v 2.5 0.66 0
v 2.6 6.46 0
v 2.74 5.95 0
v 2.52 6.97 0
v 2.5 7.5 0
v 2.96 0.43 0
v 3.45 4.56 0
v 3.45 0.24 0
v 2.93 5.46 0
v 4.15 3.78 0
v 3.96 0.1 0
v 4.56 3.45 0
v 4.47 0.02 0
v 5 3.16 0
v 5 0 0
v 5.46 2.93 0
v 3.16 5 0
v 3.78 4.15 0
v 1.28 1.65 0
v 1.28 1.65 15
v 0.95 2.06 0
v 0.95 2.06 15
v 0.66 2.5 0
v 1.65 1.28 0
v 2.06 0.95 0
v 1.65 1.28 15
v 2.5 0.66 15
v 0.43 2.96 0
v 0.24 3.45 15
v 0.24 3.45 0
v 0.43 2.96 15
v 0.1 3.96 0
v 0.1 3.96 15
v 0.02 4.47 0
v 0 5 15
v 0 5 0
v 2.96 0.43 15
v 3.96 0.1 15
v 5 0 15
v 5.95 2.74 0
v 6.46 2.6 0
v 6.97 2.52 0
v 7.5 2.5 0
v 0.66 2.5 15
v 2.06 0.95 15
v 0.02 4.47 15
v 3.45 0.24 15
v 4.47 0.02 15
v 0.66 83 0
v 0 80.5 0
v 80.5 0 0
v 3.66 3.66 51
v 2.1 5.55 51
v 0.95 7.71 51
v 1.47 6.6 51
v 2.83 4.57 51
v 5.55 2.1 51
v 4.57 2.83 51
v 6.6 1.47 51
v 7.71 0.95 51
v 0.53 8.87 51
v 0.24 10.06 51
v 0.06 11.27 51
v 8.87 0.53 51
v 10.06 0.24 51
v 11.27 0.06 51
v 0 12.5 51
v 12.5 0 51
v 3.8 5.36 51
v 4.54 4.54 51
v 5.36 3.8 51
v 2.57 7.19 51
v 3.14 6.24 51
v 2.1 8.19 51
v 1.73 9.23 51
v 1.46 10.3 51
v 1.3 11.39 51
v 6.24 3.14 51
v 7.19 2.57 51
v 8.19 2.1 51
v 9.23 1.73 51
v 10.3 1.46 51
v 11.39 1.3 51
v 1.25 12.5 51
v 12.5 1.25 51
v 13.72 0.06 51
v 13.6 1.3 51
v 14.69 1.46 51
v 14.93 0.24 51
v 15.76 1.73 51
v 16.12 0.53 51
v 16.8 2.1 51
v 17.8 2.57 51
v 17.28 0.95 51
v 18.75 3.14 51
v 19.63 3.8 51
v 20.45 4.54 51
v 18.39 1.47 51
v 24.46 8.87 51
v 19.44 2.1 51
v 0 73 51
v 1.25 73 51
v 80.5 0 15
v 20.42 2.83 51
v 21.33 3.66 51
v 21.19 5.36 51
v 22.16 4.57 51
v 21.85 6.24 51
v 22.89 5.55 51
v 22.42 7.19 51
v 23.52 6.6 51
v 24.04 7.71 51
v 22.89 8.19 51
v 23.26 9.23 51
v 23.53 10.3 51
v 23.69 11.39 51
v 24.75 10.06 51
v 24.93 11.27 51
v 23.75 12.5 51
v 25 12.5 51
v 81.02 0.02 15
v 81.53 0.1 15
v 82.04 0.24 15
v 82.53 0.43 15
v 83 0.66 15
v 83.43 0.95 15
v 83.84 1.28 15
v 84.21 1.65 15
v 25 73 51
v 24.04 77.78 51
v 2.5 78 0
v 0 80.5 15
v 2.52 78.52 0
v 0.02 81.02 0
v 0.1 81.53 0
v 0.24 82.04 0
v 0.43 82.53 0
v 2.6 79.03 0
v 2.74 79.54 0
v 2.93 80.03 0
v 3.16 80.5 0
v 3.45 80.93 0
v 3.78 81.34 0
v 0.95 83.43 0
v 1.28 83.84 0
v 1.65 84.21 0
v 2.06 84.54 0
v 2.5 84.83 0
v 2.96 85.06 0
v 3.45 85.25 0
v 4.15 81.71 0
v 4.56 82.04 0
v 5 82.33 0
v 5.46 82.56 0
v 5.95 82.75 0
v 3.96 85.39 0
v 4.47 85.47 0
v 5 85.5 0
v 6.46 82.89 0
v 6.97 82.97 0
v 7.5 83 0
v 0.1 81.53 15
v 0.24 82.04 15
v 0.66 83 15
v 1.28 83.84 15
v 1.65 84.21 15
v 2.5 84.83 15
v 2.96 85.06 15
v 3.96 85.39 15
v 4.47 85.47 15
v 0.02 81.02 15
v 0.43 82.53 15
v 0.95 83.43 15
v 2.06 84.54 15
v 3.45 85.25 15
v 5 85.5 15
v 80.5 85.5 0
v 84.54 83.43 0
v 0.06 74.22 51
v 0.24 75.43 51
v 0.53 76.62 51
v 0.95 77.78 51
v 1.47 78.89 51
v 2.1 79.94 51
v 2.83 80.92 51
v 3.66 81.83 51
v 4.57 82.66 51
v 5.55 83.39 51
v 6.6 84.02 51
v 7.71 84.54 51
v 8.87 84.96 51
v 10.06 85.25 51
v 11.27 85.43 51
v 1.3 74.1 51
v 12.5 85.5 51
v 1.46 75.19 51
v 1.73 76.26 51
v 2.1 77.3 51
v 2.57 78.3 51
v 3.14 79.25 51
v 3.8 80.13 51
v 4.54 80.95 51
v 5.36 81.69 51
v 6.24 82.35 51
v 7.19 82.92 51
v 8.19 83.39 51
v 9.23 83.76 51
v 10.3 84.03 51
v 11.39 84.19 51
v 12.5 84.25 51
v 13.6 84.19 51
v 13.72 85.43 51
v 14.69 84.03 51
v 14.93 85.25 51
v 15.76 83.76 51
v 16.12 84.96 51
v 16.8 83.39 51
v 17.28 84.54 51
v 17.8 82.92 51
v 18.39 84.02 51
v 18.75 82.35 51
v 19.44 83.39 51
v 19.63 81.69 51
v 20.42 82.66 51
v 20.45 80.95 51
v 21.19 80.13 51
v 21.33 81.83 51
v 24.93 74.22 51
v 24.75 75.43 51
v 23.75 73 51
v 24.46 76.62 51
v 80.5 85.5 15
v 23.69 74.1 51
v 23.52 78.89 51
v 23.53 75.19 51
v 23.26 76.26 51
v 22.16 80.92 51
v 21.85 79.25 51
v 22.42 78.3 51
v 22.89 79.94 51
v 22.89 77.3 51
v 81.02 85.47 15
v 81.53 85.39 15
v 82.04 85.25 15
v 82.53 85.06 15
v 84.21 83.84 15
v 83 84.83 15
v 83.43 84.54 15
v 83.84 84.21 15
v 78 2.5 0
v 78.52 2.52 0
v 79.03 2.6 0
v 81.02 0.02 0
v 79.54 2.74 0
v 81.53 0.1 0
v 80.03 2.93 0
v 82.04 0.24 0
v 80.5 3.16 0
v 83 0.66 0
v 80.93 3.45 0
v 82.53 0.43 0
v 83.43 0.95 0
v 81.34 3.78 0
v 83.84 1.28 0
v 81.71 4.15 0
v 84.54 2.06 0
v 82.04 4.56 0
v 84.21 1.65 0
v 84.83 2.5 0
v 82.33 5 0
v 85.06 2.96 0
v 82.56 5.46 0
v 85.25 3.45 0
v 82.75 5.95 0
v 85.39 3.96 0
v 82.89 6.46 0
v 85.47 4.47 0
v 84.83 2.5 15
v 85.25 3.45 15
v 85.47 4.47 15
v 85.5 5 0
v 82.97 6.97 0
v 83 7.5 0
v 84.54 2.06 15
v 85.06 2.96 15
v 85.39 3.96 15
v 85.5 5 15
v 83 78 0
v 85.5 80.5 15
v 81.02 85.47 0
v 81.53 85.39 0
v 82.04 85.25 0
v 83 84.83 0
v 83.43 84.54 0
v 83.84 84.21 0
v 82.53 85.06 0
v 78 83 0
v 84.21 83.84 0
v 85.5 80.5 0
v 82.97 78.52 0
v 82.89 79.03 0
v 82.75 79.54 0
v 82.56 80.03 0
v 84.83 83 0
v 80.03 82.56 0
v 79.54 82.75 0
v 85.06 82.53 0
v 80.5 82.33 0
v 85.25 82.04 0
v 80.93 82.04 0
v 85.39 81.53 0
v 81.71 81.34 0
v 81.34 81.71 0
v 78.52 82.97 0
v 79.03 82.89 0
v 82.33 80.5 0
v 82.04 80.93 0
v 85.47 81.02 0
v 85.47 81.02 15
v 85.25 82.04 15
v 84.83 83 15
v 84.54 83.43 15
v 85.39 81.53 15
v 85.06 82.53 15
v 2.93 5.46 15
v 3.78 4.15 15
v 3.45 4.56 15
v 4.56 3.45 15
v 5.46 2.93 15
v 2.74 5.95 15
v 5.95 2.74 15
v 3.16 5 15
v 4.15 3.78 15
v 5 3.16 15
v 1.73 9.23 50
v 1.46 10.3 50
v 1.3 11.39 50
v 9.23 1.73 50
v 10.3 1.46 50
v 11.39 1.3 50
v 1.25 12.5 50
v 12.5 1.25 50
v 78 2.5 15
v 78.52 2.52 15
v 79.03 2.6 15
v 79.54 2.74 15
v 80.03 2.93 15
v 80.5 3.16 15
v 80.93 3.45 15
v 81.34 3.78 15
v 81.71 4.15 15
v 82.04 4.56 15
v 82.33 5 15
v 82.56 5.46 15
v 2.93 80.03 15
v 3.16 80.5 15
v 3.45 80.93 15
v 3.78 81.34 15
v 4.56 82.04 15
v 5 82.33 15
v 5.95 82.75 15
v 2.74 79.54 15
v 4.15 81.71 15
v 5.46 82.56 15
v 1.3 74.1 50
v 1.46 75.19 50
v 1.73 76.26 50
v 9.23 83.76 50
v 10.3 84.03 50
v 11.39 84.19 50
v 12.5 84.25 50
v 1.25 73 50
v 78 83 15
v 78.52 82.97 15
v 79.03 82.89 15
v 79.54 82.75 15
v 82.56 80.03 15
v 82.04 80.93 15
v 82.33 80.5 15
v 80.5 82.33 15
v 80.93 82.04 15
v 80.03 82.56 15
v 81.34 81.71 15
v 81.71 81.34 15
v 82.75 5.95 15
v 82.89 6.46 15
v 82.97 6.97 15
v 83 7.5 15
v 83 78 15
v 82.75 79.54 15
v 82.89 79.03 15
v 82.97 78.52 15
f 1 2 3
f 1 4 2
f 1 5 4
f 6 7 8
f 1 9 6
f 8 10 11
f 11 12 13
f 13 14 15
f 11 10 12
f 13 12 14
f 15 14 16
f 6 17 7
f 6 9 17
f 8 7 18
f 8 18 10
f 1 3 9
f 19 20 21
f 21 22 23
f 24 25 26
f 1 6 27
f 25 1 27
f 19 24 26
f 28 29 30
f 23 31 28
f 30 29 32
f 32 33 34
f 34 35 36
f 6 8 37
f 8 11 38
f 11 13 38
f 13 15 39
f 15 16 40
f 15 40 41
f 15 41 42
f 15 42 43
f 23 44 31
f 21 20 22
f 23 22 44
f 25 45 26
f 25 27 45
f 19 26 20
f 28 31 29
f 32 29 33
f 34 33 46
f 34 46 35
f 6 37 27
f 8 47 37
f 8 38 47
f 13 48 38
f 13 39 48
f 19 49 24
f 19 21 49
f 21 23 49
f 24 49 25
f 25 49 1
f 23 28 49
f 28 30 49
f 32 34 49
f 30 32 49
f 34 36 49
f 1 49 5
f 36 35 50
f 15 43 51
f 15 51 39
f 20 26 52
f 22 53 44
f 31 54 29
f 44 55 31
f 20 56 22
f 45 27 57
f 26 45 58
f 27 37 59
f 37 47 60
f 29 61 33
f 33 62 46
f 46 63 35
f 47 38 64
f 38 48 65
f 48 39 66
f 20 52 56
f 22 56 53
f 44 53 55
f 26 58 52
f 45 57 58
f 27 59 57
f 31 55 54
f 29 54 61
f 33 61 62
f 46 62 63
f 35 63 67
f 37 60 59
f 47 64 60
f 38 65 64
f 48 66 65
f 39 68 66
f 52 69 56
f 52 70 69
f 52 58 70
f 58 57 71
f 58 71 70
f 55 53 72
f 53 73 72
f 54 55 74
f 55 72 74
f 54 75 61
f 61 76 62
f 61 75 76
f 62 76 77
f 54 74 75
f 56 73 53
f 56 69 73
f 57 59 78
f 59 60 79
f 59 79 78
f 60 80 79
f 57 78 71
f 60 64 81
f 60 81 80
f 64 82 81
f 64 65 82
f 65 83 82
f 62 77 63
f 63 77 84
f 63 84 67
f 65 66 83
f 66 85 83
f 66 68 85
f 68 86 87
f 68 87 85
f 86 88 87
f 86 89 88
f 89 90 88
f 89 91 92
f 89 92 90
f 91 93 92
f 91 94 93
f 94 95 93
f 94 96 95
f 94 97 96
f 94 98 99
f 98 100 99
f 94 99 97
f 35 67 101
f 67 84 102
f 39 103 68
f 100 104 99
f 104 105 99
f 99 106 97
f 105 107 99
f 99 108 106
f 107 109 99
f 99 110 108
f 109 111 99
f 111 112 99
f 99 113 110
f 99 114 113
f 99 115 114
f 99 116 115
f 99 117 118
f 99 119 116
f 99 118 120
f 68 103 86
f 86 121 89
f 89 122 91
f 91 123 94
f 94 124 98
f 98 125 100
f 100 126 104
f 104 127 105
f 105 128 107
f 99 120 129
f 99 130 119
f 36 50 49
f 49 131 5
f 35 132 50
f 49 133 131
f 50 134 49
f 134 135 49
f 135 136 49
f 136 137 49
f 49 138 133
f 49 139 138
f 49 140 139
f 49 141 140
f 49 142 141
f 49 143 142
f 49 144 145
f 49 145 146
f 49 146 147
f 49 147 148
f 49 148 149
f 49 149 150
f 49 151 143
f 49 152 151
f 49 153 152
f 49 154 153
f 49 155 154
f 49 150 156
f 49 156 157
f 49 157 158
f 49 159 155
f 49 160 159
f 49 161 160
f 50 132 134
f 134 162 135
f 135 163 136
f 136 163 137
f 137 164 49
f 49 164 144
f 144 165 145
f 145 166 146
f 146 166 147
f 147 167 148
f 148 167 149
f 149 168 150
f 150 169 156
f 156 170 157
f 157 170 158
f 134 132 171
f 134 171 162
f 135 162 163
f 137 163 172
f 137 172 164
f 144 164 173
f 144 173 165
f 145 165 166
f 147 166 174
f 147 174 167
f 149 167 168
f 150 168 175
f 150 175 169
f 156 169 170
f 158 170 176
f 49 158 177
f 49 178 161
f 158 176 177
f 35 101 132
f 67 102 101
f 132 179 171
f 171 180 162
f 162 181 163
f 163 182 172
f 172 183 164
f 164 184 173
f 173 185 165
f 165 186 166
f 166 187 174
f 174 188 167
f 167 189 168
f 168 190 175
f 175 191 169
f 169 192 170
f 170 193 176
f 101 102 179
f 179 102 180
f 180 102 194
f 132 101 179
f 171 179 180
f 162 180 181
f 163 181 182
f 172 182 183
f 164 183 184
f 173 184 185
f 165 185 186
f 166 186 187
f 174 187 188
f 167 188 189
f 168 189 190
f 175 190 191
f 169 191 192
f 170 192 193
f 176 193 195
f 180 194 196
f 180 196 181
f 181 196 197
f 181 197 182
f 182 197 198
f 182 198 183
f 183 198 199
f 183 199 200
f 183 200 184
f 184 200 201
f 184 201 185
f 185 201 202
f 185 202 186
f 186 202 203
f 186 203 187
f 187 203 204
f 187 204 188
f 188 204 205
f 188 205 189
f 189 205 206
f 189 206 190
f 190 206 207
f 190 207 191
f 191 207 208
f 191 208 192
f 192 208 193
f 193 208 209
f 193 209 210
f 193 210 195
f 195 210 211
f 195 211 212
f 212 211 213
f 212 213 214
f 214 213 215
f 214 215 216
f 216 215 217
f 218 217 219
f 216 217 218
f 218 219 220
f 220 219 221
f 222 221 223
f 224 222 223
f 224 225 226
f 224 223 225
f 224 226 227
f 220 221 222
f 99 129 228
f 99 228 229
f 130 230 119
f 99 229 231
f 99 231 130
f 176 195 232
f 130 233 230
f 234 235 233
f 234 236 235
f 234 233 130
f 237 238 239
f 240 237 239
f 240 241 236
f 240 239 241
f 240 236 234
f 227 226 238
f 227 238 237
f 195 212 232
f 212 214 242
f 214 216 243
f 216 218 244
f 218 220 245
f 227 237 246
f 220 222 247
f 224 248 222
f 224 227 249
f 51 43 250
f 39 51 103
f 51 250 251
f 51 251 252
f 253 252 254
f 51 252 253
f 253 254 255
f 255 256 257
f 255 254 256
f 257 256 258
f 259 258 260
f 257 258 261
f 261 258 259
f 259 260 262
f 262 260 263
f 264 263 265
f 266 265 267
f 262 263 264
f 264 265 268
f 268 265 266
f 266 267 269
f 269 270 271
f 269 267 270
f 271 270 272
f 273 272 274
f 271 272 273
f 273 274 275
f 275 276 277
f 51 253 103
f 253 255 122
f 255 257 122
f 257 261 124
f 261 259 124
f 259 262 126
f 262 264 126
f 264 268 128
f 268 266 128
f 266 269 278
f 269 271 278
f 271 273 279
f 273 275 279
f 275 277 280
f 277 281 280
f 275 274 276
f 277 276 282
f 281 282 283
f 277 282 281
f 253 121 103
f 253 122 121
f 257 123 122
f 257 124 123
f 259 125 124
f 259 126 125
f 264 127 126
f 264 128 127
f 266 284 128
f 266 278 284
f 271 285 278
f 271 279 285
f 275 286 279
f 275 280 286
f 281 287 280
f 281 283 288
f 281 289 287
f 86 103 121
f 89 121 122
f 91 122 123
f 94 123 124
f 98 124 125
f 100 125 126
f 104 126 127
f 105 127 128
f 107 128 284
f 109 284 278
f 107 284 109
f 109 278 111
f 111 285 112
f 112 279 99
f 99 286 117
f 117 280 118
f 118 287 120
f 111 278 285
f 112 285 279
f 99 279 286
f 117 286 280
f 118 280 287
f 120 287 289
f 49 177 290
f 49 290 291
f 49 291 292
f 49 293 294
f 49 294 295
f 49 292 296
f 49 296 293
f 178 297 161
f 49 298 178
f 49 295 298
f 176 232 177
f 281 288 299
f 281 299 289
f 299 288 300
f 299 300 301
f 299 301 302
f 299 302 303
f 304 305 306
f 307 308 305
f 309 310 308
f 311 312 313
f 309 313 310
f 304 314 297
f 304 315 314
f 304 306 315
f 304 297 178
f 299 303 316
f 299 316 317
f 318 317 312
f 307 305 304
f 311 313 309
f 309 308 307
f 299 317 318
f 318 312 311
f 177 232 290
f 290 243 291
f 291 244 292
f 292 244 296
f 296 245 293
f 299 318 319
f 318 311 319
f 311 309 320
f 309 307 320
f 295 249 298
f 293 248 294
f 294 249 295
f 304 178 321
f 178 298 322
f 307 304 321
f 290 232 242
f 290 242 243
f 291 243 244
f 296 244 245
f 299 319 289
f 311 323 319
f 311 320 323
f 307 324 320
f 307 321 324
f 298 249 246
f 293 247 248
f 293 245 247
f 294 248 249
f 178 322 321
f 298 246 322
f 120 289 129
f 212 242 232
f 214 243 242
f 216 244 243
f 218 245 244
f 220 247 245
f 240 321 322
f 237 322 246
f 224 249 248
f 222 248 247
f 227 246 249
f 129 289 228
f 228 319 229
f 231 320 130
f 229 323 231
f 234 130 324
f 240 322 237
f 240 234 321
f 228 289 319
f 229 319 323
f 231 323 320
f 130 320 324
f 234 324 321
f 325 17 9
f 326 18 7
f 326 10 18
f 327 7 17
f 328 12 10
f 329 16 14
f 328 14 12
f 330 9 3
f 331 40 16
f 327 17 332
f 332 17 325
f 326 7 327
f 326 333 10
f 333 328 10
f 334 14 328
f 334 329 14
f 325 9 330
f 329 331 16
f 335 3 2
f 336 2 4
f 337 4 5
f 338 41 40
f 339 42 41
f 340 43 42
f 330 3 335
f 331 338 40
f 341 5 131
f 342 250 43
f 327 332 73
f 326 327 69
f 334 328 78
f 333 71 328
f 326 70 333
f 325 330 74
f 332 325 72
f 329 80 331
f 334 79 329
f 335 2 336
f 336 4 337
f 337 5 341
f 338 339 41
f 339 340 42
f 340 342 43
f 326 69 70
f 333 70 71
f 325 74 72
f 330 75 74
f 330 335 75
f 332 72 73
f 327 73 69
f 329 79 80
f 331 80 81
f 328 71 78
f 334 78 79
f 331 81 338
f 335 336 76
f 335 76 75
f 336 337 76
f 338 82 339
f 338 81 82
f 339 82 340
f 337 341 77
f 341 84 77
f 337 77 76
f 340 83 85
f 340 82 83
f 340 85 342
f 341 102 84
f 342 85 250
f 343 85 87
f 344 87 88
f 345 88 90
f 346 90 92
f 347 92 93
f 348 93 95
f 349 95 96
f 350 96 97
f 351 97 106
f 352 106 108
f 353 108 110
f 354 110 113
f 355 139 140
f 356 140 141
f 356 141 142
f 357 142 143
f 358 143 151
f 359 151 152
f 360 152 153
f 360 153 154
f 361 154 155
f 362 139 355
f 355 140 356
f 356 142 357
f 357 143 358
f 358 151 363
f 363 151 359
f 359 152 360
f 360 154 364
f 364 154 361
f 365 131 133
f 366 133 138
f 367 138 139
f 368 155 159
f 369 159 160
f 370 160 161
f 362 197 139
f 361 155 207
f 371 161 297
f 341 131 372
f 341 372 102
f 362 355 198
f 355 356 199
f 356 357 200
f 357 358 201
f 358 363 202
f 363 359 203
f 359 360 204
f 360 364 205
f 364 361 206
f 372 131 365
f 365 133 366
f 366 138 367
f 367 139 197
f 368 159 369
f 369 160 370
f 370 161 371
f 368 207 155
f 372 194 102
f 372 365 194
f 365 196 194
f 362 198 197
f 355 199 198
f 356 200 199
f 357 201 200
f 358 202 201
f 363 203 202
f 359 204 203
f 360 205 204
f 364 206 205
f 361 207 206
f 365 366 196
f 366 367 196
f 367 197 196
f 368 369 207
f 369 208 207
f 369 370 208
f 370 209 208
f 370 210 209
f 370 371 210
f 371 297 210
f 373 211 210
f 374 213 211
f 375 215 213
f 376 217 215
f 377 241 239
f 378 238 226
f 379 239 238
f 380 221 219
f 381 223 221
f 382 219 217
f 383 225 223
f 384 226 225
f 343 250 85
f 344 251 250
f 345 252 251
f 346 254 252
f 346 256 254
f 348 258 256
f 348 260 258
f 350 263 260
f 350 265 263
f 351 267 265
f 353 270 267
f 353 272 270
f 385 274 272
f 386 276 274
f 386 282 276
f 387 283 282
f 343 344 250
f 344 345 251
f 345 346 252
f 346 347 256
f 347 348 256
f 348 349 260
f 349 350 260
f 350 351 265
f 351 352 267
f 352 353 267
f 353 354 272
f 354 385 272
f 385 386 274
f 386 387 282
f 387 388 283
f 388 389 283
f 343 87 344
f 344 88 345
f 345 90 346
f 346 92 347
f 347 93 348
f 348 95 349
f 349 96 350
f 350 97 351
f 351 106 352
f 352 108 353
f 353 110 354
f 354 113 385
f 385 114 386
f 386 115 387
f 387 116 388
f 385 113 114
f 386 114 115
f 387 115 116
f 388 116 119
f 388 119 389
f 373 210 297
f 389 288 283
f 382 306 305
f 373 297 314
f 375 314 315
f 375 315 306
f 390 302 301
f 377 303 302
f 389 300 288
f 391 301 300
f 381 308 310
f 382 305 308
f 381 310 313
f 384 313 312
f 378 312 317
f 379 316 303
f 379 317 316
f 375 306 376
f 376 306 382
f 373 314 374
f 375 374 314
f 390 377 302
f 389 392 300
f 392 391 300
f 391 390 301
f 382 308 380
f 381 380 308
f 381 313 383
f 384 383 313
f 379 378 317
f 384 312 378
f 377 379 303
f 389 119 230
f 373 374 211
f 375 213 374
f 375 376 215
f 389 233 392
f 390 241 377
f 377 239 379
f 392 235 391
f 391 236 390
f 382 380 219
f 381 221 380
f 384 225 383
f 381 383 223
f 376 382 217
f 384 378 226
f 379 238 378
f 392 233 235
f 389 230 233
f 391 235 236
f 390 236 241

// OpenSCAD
// file: rounded_rect.scad
// module for a rounded rectangle
// 14.11.2025
// Sebastian Weigl

module rr(l, w, r, h)
{
linear_extrude(height = h, center = false, convexity = 0)
  translate([r, r, 0])
  offset(r=r, $fn = 60) 
  square([l-(2*r), w-(2*r)]);
}

// to use this add
// use <rounded_rect.scad>
// and 
// rr(x_length,y_length,radius,height);
// main file
// fan duct
// direct air flow
// version 2
// 25.05.2026 Sebastian Weigl

// // rr(x_length,y_length,radius,height);
$fn=64;
include <rounded_rect.scad>

// declare vars

//  first body
difference(){
  hull(){
    translate([0,0,0])
    rr(85.5,85.5,5,15);
    hull(){
      translate([12.5,12.5,50])
      cylinder(h=1,d=25,center=false);
      translate([12.5,73,50])
      cylinder(h=1,d=25,center=false);
      }
    }  

  hull(){
    translate([2.5,2.5,0])
    #rr(80.5,80.5,5,15);
    hull(){
      translate([12.5,12.5,50])
      cylinder(h=1,d=22.5,center=false);
      translate([12.5,73,50])
      cylinder(h=1,d=22.5,center=false);
      }
    }
  }
